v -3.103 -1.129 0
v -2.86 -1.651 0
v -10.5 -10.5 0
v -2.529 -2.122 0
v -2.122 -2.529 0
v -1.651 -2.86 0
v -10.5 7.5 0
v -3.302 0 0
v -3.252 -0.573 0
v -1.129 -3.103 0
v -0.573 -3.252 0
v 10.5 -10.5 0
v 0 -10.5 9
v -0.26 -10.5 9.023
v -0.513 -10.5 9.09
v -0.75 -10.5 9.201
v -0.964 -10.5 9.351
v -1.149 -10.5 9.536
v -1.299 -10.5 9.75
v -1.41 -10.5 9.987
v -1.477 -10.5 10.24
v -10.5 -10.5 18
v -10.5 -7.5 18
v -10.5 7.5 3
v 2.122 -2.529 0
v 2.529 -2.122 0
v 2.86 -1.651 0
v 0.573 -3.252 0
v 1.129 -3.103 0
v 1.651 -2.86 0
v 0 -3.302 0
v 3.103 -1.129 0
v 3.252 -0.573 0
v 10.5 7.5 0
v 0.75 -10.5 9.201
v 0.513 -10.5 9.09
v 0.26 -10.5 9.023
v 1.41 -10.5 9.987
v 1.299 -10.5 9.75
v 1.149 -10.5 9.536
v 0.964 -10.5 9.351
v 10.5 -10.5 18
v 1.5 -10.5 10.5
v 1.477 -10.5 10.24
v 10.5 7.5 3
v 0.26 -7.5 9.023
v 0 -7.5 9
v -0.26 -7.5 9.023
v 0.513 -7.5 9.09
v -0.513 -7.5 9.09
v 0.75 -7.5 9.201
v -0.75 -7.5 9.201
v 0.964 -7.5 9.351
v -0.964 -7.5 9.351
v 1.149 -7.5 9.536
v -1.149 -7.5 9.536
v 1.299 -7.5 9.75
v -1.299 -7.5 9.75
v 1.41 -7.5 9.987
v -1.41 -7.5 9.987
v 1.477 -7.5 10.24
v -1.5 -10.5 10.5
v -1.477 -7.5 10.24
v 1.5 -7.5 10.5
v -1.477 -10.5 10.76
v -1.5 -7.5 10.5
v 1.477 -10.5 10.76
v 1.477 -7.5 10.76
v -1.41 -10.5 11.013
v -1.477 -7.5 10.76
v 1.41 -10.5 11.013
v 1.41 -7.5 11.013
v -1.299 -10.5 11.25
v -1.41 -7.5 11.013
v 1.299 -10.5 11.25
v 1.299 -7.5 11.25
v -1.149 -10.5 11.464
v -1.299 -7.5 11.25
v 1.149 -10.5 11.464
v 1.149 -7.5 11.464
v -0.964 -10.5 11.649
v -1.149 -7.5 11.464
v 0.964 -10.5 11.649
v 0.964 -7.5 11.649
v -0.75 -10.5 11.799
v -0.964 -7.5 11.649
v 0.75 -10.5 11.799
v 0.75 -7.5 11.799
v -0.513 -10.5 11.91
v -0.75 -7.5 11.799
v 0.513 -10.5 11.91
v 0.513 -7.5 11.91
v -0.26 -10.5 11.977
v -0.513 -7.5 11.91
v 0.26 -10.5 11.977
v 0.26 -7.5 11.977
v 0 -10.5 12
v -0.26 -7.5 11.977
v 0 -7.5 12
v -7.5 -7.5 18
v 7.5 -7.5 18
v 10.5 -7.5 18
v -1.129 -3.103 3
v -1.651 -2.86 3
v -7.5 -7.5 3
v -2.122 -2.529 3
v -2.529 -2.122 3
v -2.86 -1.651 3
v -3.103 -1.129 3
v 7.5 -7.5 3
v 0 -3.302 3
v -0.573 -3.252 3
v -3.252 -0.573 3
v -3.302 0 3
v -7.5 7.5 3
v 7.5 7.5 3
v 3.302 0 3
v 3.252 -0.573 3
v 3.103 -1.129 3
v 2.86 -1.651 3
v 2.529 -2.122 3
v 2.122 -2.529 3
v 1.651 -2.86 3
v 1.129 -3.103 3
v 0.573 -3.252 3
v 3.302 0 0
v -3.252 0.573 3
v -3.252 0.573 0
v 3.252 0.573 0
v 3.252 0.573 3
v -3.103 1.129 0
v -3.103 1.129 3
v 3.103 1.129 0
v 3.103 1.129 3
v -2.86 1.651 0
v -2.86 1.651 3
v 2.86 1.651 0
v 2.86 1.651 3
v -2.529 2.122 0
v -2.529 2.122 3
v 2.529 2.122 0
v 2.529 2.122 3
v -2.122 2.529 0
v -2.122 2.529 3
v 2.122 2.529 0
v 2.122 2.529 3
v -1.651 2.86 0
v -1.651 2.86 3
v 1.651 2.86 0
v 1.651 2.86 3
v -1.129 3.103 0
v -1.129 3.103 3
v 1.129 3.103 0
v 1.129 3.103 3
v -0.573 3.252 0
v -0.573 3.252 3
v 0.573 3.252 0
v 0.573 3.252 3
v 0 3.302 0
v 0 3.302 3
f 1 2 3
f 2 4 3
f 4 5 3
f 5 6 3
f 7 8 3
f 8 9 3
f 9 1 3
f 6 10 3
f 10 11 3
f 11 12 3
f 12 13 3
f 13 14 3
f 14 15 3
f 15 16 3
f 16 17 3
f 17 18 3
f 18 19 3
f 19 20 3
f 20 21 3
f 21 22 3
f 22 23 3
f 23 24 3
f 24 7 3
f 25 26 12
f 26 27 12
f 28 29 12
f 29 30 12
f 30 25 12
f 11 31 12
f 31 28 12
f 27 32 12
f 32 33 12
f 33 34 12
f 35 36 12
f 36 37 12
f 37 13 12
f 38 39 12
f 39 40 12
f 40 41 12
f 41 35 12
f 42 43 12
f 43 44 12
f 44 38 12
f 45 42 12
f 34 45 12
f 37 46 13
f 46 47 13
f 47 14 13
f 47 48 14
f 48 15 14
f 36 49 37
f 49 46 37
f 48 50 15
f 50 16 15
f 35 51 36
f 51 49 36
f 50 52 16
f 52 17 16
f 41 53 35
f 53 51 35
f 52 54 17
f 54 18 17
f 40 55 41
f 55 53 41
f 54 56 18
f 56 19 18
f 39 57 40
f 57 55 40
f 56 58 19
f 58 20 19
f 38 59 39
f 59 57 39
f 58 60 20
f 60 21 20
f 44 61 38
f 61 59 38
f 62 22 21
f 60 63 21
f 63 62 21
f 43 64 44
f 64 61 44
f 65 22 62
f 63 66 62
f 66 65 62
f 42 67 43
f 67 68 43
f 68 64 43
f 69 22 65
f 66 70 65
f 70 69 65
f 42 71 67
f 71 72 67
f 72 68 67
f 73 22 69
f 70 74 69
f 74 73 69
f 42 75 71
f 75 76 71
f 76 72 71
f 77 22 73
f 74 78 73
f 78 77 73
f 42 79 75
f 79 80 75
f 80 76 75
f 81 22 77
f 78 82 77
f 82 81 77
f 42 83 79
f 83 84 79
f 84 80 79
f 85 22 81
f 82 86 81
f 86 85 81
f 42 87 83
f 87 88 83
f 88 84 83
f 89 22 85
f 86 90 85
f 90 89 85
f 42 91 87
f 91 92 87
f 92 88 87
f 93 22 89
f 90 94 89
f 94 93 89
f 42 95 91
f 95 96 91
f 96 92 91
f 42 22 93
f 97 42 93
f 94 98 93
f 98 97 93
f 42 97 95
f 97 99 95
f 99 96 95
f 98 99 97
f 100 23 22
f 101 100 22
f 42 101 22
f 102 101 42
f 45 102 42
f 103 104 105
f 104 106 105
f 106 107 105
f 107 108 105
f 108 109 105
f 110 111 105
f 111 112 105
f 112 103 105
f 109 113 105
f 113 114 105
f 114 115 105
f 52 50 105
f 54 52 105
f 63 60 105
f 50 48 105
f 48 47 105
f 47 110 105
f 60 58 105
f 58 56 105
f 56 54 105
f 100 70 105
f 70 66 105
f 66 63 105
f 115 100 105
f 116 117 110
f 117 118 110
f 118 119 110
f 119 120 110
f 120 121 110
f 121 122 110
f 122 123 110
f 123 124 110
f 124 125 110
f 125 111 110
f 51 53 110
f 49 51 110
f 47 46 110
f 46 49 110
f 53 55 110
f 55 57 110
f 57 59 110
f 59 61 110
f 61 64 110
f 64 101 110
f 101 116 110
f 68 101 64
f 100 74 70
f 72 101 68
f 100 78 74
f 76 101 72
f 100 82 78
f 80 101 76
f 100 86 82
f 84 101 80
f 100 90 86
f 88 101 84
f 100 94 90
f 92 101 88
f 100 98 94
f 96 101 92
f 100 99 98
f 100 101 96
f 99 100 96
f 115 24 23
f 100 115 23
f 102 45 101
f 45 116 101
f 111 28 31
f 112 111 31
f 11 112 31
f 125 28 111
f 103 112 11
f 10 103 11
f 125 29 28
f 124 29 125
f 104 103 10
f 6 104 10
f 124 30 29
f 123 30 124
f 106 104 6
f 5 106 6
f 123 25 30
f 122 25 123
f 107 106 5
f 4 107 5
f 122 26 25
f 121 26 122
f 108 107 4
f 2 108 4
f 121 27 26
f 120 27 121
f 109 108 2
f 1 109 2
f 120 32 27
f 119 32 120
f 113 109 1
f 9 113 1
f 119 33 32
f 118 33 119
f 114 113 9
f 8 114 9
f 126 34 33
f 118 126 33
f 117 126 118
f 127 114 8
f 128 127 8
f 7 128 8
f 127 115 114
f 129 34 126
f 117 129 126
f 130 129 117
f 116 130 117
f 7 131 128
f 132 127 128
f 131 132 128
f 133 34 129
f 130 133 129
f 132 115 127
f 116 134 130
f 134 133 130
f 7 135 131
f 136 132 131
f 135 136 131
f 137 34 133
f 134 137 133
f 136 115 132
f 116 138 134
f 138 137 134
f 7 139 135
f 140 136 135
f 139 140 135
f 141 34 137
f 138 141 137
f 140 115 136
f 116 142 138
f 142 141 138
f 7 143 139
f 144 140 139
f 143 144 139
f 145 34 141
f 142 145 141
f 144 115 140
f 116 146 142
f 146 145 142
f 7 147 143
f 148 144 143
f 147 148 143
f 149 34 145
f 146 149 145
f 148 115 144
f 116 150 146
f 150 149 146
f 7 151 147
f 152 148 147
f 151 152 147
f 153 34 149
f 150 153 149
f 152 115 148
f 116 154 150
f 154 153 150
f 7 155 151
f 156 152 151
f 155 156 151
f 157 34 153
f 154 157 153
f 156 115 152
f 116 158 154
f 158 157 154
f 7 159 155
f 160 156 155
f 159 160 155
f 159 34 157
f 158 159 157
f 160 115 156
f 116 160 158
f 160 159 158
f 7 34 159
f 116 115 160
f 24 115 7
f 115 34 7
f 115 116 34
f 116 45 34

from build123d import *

# Parameters (mm, degrees)
SKETCH1_W           = 15
SKETCH1_H           = 15
SKETCH1_R           = 3.302
BOSS_EXTRUDE1_DEPTH = 3
SKETCH2_W           = 15
SKETCH2_H           = 18
SKETCH2_R           = 1.5
BOSS_EXTRUDE2_DEPTH = 3
BOSS_EXTRUDE3_DEPTH = 3


with BuildPart() as part:
    # Sketch1 → Boss-Extrude1 (new body)
    with BuildSketch(Plane.XY):
        Rectangle(SKETCH1_W, SKETCH1_H)
        Circle(SKETCH1_R, mode=Mode.SUBTRACT)
    extrude(amount=BOSS_EXTRUDE1_DEPTH)

    # Sketch2 → Boss-Extrude2 (add)
    with BuildSketch(Plane.XZ.offset(7.5)):
        with Locations((0, 9)):
            Rectangle(SKETCH2_W, SKETCH2_H)
        with Locations((0, 10.5)):
            Circle(SKETCH2_R, mode=Mode.SUBTRACT)
    extrude(amount=BOSS_EXTRUDE2_DEPTH)

    # Sketch3 → Boss-Extrude3 (add)
    with BuildSketch(Plane(origin=(7.5, 0, 0), x_dir=(0, 0, -1), z_dir=(1, 0, 0))):
        Polygon((-18, -10.5), (-18, -7.5), (-3, 7.5), (0, 7.5), (0, -10.5), align=None)
    boss_extrude3 = extrude(amount=BOSS_EXTRUDE3_DEPTH)

    # Mirror1: Boss-Extrude3 across plane
    add(boss_extrude3.mirror(Plane(origin=(0, 0, 0), x_dir=(0, 0, 1), z_dir=(1, 0, 0))))


solid = part.part
